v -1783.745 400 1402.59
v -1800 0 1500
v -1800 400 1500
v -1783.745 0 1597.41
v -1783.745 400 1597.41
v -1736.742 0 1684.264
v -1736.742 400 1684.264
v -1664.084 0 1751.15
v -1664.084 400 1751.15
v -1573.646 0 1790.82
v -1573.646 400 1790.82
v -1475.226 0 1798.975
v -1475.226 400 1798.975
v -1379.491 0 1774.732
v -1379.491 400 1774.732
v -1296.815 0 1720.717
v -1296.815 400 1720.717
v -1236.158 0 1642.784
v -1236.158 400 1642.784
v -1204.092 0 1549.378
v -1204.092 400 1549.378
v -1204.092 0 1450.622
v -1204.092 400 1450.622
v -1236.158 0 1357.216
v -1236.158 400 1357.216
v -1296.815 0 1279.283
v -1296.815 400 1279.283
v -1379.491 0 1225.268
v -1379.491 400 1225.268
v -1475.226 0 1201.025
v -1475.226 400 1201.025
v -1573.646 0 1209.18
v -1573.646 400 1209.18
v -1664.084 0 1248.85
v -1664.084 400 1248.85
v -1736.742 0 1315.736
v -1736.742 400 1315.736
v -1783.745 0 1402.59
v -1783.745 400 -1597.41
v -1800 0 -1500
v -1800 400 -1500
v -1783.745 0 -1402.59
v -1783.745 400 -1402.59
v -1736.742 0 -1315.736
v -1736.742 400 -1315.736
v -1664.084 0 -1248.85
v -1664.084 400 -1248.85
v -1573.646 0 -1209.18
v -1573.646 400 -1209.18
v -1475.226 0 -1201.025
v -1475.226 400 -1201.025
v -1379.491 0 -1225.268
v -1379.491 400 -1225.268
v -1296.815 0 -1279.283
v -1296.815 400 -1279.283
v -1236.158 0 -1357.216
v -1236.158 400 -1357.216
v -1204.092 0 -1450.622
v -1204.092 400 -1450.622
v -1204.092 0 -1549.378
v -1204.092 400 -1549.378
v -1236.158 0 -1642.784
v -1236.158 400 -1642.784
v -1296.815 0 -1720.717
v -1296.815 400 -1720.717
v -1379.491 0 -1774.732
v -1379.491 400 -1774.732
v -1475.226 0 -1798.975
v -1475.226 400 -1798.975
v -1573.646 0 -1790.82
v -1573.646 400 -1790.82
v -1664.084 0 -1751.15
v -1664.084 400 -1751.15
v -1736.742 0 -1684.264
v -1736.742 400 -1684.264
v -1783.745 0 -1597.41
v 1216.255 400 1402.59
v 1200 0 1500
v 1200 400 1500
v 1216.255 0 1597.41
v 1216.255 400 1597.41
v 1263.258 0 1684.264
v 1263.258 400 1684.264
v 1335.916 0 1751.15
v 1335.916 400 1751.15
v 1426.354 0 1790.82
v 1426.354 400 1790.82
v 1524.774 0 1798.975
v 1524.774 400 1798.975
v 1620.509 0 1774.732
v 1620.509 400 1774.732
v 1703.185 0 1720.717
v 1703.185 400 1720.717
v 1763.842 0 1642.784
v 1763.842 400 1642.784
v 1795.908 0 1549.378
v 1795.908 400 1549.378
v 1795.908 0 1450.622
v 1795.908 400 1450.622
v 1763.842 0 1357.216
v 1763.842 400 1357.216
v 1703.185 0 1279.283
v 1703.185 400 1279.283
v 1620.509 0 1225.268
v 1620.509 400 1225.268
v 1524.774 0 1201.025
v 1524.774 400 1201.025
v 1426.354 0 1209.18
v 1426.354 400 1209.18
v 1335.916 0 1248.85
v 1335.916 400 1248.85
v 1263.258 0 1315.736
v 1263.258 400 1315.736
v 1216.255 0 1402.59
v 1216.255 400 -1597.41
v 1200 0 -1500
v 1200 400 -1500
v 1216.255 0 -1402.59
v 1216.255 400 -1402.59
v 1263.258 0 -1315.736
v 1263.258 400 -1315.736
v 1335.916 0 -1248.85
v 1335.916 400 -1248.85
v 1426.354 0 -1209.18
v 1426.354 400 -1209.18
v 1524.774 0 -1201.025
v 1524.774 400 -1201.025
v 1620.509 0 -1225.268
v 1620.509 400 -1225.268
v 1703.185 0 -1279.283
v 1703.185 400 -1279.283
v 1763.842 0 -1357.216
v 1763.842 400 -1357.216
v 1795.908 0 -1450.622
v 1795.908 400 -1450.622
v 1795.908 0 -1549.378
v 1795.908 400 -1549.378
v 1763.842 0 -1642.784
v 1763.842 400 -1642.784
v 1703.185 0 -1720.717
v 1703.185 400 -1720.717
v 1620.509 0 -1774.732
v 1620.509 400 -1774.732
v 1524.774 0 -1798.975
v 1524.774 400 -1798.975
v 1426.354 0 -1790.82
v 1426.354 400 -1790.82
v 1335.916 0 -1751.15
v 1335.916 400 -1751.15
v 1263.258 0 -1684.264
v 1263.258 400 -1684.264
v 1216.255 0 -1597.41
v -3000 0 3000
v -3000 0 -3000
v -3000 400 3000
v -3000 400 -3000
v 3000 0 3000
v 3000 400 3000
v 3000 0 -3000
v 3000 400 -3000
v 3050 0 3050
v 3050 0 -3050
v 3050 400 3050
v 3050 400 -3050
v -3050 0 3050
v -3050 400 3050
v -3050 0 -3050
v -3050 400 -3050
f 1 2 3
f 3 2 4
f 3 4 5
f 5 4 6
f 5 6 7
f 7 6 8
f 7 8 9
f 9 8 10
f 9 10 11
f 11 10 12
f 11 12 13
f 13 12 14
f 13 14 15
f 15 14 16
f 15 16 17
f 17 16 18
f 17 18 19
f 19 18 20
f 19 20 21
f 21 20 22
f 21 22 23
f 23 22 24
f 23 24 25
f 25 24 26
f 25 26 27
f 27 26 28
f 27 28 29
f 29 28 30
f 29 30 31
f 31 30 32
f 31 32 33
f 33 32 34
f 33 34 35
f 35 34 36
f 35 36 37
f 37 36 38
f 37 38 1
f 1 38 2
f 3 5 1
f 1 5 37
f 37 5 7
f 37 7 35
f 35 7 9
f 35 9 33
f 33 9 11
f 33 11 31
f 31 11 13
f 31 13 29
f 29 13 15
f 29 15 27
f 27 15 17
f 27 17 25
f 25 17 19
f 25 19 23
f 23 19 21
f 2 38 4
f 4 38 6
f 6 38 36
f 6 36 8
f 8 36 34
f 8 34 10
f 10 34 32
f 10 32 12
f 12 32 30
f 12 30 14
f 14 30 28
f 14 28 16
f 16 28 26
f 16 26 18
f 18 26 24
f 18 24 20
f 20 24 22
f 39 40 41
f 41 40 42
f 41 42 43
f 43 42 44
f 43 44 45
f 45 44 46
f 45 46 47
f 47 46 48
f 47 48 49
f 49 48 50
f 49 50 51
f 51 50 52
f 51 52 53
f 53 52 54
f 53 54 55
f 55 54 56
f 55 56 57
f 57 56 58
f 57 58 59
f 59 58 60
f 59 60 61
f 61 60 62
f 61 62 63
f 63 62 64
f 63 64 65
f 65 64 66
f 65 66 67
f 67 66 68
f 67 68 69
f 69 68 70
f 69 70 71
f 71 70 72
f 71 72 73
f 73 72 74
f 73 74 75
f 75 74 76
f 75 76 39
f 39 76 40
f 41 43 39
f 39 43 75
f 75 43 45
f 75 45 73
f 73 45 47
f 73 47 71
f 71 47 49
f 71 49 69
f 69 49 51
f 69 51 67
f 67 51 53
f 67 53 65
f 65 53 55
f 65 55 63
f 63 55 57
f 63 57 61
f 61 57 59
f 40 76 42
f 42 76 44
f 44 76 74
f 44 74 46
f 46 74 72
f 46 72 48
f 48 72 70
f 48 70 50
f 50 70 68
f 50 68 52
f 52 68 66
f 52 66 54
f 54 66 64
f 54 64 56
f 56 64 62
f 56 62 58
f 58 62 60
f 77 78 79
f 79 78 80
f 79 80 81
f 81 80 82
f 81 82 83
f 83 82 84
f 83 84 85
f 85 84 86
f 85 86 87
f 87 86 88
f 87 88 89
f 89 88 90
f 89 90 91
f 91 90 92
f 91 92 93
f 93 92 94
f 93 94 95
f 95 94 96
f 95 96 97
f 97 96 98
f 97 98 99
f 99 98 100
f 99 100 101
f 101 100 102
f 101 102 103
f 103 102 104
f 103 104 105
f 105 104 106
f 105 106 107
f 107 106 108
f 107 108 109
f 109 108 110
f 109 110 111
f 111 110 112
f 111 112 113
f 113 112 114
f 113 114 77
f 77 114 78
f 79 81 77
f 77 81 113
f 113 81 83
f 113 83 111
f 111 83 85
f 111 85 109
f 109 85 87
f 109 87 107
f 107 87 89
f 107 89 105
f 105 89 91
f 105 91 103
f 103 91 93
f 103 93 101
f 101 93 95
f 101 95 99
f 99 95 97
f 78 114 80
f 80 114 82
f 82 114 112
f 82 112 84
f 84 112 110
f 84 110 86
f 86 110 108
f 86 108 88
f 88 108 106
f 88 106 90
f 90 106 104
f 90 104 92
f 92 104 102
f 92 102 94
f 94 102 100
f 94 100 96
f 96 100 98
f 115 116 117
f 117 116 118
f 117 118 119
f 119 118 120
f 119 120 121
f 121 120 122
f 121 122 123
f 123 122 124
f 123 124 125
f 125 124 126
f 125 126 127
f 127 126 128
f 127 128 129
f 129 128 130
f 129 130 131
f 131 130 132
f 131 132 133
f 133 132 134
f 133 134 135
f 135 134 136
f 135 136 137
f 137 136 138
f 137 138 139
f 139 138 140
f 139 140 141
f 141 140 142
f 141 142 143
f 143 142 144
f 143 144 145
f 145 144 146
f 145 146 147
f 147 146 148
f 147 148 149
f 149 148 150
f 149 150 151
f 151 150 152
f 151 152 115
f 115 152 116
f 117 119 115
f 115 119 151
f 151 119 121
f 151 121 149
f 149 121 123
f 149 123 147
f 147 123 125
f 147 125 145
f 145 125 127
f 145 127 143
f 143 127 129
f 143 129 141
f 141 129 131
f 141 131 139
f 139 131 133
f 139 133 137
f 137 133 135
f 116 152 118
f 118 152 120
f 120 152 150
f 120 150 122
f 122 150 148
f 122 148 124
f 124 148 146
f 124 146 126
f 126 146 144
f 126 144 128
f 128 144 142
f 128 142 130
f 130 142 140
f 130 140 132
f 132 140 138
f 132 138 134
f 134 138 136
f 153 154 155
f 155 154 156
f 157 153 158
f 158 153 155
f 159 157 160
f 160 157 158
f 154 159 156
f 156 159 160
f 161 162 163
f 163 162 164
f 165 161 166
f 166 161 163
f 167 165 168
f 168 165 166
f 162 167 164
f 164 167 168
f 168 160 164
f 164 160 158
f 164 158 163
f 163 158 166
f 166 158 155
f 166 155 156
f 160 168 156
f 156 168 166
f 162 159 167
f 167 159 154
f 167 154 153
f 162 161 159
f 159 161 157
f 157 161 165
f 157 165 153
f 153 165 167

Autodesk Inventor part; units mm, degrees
ref_plane "YZ Plane" through (0, 0, 0) normal (1, 0, 0) x (0, 1, 0)
ref_plane "XZ Plane" through (0, 0, 0) normal (0, 1, 0) x (-1, 0, 0)
ref_plane "XY Plane" through (0, 0, 0) normal (0, 0, 1) x (1, 0, 0)
sketch "Sketch1" plane through (0, 0, 0) normal (0, 1, 0) x (-1, 0, 0)
  line L0 (3000, -3000) -> (-3000, -3000)
  line L1 (-3000, -3000) -> (-3000, 3000)
  line L2 (-3000, 3000) -> (3000, 3000)
  line L3 (3000, 3000) -> (3000, -3000)
  line L4 (3000, -3000) -> (-3000, 3000) construction
  line L5 (-3000, -3000) -> (3000, 3000) construction
  line L6 (-3050, -3050) -> (3050, -3050)
  line L7 (3050, -3050) -> (3050, 3050)
  line L8 (3050, 3050) -> (-3050, 3050)
  line L9 (-3050, 3050) -> (-3050, -3050)
  circle A0 centre (1500, -1500) radius 300
  circle A1 centre (-1500, -1500) radius 300
  circle A2 centre (-1500, 1500) radius 300
  circle A3 centre (1500, 1500) radius 300
  line L10 (1500, -1500) -> (-1500, -1500) construction
  line L11 (-1500, 1500) -> (-1500, -1500) construction
  line L12 (-1500, 1500) -> (1500, 1500) construction
  line L13 (1500, 1500) -> (1500, -1500) construction
  point P0 (0, 0)
  dimension "d0" = 6000
  dimension "d1" = 6000
  dimension "d2" = 50
  dimension "d3" = 600
  dimension "d4" = 600
  dimension "d5" = 600
  dimension "d6" = 600
  dimension "d7" = 3000
extrude "Extrusion1" add sketch "Sketch1" along normal blind 400
equation "\"d7\" = 0.5 * d1"
properties part number "map1"
